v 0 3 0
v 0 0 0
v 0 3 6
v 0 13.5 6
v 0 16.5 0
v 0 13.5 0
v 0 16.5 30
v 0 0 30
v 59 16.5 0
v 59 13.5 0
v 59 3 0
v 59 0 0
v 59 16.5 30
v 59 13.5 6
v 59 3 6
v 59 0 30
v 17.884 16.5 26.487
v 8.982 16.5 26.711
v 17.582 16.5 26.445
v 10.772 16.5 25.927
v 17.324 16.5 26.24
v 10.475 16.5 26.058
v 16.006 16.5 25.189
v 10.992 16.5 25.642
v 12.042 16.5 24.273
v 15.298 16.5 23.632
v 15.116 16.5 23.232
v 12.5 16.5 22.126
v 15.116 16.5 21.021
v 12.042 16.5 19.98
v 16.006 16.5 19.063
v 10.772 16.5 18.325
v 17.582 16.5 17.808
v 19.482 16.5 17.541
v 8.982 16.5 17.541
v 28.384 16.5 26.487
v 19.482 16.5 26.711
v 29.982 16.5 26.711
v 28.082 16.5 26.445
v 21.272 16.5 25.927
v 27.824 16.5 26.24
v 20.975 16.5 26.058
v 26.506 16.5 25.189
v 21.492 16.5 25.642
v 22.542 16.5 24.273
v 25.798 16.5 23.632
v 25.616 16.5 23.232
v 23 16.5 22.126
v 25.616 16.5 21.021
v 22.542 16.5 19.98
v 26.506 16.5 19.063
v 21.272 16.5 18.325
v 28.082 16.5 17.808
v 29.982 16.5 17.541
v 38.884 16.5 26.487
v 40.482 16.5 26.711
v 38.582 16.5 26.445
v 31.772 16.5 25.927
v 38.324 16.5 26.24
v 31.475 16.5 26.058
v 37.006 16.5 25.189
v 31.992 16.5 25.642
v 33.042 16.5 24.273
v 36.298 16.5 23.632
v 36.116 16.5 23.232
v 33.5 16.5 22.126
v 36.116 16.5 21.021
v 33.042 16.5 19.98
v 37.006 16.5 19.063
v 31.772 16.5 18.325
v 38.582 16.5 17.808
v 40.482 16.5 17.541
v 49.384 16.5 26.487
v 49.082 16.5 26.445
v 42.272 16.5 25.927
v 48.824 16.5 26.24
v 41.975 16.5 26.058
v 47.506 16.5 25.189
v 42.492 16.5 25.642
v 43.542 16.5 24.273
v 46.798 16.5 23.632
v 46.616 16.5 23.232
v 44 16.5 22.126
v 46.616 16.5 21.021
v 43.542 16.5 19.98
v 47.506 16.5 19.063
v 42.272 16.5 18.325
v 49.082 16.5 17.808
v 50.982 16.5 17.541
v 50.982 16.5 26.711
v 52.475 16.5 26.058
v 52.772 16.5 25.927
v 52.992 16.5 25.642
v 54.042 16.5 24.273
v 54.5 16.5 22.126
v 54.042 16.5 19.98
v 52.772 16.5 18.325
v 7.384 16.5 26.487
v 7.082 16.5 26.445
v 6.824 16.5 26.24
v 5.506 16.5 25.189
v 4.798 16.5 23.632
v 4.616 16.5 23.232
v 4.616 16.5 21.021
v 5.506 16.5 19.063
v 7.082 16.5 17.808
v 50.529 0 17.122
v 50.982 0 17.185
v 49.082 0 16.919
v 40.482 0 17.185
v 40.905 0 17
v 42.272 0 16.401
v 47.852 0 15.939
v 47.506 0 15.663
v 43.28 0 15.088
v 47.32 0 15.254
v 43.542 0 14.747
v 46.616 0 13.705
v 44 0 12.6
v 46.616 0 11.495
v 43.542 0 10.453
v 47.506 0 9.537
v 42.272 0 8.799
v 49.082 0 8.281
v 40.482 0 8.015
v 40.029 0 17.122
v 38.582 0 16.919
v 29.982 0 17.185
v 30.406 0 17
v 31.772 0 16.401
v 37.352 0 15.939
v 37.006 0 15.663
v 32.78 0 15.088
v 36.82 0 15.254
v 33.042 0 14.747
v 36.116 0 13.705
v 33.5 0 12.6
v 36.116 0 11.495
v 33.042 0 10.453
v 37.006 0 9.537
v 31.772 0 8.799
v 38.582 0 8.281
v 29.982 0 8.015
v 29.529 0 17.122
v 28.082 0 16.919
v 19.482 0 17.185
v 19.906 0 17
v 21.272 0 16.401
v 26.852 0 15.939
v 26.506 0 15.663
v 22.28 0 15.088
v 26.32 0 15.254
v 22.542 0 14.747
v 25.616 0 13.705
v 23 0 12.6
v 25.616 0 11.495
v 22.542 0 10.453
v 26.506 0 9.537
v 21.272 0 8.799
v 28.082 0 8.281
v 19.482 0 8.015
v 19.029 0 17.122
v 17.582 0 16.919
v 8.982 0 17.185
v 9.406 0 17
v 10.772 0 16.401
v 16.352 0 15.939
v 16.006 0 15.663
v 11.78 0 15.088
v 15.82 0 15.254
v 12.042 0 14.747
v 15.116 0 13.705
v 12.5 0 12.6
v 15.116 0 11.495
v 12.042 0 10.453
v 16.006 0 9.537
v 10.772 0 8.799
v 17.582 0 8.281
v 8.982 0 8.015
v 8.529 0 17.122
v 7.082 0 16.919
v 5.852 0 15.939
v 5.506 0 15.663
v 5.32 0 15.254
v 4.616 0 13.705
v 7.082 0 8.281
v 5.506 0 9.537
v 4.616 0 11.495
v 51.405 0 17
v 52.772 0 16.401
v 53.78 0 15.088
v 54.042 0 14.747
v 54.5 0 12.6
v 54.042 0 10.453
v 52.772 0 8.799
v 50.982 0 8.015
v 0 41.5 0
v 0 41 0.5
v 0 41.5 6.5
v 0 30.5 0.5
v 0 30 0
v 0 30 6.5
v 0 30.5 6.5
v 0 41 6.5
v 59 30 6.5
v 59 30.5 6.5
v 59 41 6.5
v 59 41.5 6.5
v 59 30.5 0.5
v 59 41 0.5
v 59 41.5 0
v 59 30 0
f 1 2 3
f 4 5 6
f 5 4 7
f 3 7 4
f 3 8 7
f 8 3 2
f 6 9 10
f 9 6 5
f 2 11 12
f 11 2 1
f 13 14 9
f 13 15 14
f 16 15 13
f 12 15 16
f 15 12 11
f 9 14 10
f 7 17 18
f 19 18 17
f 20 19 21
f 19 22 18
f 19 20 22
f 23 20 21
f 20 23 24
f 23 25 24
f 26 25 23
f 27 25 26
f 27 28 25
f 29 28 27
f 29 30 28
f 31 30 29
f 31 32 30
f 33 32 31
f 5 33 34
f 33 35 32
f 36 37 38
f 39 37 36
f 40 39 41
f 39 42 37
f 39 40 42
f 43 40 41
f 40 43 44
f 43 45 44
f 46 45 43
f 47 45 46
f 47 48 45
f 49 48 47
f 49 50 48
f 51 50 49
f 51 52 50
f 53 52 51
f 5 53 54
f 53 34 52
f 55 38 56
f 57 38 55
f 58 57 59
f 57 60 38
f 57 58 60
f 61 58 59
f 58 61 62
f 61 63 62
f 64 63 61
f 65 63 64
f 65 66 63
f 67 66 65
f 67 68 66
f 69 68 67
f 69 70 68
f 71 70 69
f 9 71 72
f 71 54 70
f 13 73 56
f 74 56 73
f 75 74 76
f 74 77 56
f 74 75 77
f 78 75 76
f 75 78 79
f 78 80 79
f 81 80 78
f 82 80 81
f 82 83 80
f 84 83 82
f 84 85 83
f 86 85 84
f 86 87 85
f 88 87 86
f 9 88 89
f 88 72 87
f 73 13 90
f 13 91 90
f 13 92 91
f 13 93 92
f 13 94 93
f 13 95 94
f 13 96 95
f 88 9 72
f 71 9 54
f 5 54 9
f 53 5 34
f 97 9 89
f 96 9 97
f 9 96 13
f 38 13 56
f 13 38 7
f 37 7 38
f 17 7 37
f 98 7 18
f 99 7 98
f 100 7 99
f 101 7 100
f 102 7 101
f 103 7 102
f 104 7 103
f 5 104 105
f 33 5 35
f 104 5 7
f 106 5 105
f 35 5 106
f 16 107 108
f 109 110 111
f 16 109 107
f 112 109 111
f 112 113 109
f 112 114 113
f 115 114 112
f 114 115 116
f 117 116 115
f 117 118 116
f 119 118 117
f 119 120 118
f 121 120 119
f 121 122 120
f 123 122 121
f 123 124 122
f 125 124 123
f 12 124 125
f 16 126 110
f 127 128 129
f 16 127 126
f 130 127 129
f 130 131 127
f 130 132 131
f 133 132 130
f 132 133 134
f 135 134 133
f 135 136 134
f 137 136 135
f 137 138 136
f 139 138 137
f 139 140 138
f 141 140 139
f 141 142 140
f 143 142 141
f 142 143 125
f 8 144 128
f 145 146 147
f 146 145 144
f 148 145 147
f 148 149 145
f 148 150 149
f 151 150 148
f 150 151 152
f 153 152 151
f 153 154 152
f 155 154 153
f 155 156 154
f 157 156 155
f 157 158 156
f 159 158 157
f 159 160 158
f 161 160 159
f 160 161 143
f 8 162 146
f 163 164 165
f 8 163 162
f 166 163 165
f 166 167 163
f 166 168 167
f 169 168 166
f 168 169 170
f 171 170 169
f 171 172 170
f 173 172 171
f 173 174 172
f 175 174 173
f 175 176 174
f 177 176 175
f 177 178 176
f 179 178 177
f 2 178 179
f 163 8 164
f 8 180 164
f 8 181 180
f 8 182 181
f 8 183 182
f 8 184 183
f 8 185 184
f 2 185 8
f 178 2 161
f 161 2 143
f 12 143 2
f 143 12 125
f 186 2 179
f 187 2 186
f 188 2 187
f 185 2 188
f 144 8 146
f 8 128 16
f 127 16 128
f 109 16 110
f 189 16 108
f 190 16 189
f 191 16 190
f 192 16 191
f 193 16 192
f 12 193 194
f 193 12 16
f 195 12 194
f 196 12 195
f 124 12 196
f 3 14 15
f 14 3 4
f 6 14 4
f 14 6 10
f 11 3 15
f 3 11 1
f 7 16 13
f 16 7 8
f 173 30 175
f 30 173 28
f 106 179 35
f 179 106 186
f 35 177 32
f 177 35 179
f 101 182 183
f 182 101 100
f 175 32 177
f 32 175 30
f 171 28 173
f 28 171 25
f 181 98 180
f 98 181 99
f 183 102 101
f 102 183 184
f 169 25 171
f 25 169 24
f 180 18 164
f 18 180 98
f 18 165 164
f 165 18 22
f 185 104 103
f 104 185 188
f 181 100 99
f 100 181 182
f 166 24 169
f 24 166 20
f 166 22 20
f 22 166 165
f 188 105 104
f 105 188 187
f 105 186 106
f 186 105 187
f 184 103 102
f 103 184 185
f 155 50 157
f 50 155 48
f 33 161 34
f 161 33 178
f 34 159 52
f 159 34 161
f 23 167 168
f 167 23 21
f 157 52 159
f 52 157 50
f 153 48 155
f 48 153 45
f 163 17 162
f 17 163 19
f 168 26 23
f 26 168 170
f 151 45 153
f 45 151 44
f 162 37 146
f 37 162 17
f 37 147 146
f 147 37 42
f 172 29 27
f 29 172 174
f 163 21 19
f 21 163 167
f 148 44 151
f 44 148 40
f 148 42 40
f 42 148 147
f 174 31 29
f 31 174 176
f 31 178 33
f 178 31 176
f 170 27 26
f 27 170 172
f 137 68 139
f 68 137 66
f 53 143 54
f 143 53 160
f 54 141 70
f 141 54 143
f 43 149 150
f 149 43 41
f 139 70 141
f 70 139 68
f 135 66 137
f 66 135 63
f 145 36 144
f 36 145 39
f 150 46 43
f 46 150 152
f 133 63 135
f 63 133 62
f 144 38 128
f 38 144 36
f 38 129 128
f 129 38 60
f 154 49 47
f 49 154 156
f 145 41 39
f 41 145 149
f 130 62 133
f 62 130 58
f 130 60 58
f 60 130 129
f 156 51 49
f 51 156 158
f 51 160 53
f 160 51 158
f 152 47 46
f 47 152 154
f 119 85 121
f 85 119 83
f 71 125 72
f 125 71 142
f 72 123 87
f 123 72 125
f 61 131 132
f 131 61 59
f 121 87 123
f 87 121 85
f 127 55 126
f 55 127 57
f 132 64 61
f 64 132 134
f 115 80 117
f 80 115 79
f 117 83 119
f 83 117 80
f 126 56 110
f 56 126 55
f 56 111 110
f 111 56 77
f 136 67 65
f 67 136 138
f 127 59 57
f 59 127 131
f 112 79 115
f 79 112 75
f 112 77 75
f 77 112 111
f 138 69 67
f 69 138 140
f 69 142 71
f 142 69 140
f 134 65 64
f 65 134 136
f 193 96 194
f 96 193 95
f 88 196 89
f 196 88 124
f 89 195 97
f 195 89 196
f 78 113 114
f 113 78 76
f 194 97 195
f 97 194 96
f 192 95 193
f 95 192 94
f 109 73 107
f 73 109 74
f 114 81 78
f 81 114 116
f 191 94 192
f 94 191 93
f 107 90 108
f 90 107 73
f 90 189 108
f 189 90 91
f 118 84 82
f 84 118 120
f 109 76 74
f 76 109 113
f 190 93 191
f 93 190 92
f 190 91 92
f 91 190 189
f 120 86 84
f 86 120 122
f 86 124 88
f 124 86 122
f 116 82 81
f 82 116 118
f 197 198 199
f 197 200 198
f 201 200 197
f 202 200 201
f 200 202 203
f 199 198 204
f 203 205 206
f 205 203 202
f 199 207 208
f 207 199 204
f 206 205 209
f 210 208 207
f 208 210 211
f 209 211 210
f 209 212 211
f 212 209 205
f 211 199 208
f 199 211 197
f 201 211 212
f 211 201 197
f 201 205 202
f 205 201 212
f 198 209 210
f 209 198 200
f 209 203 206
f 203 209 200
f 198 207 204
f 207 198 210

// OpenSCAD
module u_profile (length, cross, thick) {
  difference () {
    cube([length, cross.x + 2 * thick, cross.y + thick]);
    
    translate([-1, thick, thick])
    cube([length + 2, cross.x, cross.y + 1]);
  }
}

module u_tube_holder (length, cross, thick) {
  difference () {
    union () {
      translate([0, cross.x + 2 * thick, cross.y + thick])
      rotate(180, [1,0,0])
      u_profile(length, cross, thick);
      
      translate([0, 0, cross.y + thick])
      cube([length, cross.x + 2 * thick, 2 * cross.x]);
    }
    
    dist = (length - 5 * 4) / 6;
    ofsl = dist + 2;
    
    for (i = [0:4]) {
      translate([ofsl + i * (dist + 4), 0, 1.6 * cross.y + thick])
      rotate(-60, [1,0,0])
      translate([0, 0, -cross.x/2])
      cylinder(cross.x * 3, 4, 4);
    }
  }
}

u_tube_holder(59, [10.5, 6], 3);

translate([0, 30, 0])
u_profile(59, [10.5, 6], 0.5);
